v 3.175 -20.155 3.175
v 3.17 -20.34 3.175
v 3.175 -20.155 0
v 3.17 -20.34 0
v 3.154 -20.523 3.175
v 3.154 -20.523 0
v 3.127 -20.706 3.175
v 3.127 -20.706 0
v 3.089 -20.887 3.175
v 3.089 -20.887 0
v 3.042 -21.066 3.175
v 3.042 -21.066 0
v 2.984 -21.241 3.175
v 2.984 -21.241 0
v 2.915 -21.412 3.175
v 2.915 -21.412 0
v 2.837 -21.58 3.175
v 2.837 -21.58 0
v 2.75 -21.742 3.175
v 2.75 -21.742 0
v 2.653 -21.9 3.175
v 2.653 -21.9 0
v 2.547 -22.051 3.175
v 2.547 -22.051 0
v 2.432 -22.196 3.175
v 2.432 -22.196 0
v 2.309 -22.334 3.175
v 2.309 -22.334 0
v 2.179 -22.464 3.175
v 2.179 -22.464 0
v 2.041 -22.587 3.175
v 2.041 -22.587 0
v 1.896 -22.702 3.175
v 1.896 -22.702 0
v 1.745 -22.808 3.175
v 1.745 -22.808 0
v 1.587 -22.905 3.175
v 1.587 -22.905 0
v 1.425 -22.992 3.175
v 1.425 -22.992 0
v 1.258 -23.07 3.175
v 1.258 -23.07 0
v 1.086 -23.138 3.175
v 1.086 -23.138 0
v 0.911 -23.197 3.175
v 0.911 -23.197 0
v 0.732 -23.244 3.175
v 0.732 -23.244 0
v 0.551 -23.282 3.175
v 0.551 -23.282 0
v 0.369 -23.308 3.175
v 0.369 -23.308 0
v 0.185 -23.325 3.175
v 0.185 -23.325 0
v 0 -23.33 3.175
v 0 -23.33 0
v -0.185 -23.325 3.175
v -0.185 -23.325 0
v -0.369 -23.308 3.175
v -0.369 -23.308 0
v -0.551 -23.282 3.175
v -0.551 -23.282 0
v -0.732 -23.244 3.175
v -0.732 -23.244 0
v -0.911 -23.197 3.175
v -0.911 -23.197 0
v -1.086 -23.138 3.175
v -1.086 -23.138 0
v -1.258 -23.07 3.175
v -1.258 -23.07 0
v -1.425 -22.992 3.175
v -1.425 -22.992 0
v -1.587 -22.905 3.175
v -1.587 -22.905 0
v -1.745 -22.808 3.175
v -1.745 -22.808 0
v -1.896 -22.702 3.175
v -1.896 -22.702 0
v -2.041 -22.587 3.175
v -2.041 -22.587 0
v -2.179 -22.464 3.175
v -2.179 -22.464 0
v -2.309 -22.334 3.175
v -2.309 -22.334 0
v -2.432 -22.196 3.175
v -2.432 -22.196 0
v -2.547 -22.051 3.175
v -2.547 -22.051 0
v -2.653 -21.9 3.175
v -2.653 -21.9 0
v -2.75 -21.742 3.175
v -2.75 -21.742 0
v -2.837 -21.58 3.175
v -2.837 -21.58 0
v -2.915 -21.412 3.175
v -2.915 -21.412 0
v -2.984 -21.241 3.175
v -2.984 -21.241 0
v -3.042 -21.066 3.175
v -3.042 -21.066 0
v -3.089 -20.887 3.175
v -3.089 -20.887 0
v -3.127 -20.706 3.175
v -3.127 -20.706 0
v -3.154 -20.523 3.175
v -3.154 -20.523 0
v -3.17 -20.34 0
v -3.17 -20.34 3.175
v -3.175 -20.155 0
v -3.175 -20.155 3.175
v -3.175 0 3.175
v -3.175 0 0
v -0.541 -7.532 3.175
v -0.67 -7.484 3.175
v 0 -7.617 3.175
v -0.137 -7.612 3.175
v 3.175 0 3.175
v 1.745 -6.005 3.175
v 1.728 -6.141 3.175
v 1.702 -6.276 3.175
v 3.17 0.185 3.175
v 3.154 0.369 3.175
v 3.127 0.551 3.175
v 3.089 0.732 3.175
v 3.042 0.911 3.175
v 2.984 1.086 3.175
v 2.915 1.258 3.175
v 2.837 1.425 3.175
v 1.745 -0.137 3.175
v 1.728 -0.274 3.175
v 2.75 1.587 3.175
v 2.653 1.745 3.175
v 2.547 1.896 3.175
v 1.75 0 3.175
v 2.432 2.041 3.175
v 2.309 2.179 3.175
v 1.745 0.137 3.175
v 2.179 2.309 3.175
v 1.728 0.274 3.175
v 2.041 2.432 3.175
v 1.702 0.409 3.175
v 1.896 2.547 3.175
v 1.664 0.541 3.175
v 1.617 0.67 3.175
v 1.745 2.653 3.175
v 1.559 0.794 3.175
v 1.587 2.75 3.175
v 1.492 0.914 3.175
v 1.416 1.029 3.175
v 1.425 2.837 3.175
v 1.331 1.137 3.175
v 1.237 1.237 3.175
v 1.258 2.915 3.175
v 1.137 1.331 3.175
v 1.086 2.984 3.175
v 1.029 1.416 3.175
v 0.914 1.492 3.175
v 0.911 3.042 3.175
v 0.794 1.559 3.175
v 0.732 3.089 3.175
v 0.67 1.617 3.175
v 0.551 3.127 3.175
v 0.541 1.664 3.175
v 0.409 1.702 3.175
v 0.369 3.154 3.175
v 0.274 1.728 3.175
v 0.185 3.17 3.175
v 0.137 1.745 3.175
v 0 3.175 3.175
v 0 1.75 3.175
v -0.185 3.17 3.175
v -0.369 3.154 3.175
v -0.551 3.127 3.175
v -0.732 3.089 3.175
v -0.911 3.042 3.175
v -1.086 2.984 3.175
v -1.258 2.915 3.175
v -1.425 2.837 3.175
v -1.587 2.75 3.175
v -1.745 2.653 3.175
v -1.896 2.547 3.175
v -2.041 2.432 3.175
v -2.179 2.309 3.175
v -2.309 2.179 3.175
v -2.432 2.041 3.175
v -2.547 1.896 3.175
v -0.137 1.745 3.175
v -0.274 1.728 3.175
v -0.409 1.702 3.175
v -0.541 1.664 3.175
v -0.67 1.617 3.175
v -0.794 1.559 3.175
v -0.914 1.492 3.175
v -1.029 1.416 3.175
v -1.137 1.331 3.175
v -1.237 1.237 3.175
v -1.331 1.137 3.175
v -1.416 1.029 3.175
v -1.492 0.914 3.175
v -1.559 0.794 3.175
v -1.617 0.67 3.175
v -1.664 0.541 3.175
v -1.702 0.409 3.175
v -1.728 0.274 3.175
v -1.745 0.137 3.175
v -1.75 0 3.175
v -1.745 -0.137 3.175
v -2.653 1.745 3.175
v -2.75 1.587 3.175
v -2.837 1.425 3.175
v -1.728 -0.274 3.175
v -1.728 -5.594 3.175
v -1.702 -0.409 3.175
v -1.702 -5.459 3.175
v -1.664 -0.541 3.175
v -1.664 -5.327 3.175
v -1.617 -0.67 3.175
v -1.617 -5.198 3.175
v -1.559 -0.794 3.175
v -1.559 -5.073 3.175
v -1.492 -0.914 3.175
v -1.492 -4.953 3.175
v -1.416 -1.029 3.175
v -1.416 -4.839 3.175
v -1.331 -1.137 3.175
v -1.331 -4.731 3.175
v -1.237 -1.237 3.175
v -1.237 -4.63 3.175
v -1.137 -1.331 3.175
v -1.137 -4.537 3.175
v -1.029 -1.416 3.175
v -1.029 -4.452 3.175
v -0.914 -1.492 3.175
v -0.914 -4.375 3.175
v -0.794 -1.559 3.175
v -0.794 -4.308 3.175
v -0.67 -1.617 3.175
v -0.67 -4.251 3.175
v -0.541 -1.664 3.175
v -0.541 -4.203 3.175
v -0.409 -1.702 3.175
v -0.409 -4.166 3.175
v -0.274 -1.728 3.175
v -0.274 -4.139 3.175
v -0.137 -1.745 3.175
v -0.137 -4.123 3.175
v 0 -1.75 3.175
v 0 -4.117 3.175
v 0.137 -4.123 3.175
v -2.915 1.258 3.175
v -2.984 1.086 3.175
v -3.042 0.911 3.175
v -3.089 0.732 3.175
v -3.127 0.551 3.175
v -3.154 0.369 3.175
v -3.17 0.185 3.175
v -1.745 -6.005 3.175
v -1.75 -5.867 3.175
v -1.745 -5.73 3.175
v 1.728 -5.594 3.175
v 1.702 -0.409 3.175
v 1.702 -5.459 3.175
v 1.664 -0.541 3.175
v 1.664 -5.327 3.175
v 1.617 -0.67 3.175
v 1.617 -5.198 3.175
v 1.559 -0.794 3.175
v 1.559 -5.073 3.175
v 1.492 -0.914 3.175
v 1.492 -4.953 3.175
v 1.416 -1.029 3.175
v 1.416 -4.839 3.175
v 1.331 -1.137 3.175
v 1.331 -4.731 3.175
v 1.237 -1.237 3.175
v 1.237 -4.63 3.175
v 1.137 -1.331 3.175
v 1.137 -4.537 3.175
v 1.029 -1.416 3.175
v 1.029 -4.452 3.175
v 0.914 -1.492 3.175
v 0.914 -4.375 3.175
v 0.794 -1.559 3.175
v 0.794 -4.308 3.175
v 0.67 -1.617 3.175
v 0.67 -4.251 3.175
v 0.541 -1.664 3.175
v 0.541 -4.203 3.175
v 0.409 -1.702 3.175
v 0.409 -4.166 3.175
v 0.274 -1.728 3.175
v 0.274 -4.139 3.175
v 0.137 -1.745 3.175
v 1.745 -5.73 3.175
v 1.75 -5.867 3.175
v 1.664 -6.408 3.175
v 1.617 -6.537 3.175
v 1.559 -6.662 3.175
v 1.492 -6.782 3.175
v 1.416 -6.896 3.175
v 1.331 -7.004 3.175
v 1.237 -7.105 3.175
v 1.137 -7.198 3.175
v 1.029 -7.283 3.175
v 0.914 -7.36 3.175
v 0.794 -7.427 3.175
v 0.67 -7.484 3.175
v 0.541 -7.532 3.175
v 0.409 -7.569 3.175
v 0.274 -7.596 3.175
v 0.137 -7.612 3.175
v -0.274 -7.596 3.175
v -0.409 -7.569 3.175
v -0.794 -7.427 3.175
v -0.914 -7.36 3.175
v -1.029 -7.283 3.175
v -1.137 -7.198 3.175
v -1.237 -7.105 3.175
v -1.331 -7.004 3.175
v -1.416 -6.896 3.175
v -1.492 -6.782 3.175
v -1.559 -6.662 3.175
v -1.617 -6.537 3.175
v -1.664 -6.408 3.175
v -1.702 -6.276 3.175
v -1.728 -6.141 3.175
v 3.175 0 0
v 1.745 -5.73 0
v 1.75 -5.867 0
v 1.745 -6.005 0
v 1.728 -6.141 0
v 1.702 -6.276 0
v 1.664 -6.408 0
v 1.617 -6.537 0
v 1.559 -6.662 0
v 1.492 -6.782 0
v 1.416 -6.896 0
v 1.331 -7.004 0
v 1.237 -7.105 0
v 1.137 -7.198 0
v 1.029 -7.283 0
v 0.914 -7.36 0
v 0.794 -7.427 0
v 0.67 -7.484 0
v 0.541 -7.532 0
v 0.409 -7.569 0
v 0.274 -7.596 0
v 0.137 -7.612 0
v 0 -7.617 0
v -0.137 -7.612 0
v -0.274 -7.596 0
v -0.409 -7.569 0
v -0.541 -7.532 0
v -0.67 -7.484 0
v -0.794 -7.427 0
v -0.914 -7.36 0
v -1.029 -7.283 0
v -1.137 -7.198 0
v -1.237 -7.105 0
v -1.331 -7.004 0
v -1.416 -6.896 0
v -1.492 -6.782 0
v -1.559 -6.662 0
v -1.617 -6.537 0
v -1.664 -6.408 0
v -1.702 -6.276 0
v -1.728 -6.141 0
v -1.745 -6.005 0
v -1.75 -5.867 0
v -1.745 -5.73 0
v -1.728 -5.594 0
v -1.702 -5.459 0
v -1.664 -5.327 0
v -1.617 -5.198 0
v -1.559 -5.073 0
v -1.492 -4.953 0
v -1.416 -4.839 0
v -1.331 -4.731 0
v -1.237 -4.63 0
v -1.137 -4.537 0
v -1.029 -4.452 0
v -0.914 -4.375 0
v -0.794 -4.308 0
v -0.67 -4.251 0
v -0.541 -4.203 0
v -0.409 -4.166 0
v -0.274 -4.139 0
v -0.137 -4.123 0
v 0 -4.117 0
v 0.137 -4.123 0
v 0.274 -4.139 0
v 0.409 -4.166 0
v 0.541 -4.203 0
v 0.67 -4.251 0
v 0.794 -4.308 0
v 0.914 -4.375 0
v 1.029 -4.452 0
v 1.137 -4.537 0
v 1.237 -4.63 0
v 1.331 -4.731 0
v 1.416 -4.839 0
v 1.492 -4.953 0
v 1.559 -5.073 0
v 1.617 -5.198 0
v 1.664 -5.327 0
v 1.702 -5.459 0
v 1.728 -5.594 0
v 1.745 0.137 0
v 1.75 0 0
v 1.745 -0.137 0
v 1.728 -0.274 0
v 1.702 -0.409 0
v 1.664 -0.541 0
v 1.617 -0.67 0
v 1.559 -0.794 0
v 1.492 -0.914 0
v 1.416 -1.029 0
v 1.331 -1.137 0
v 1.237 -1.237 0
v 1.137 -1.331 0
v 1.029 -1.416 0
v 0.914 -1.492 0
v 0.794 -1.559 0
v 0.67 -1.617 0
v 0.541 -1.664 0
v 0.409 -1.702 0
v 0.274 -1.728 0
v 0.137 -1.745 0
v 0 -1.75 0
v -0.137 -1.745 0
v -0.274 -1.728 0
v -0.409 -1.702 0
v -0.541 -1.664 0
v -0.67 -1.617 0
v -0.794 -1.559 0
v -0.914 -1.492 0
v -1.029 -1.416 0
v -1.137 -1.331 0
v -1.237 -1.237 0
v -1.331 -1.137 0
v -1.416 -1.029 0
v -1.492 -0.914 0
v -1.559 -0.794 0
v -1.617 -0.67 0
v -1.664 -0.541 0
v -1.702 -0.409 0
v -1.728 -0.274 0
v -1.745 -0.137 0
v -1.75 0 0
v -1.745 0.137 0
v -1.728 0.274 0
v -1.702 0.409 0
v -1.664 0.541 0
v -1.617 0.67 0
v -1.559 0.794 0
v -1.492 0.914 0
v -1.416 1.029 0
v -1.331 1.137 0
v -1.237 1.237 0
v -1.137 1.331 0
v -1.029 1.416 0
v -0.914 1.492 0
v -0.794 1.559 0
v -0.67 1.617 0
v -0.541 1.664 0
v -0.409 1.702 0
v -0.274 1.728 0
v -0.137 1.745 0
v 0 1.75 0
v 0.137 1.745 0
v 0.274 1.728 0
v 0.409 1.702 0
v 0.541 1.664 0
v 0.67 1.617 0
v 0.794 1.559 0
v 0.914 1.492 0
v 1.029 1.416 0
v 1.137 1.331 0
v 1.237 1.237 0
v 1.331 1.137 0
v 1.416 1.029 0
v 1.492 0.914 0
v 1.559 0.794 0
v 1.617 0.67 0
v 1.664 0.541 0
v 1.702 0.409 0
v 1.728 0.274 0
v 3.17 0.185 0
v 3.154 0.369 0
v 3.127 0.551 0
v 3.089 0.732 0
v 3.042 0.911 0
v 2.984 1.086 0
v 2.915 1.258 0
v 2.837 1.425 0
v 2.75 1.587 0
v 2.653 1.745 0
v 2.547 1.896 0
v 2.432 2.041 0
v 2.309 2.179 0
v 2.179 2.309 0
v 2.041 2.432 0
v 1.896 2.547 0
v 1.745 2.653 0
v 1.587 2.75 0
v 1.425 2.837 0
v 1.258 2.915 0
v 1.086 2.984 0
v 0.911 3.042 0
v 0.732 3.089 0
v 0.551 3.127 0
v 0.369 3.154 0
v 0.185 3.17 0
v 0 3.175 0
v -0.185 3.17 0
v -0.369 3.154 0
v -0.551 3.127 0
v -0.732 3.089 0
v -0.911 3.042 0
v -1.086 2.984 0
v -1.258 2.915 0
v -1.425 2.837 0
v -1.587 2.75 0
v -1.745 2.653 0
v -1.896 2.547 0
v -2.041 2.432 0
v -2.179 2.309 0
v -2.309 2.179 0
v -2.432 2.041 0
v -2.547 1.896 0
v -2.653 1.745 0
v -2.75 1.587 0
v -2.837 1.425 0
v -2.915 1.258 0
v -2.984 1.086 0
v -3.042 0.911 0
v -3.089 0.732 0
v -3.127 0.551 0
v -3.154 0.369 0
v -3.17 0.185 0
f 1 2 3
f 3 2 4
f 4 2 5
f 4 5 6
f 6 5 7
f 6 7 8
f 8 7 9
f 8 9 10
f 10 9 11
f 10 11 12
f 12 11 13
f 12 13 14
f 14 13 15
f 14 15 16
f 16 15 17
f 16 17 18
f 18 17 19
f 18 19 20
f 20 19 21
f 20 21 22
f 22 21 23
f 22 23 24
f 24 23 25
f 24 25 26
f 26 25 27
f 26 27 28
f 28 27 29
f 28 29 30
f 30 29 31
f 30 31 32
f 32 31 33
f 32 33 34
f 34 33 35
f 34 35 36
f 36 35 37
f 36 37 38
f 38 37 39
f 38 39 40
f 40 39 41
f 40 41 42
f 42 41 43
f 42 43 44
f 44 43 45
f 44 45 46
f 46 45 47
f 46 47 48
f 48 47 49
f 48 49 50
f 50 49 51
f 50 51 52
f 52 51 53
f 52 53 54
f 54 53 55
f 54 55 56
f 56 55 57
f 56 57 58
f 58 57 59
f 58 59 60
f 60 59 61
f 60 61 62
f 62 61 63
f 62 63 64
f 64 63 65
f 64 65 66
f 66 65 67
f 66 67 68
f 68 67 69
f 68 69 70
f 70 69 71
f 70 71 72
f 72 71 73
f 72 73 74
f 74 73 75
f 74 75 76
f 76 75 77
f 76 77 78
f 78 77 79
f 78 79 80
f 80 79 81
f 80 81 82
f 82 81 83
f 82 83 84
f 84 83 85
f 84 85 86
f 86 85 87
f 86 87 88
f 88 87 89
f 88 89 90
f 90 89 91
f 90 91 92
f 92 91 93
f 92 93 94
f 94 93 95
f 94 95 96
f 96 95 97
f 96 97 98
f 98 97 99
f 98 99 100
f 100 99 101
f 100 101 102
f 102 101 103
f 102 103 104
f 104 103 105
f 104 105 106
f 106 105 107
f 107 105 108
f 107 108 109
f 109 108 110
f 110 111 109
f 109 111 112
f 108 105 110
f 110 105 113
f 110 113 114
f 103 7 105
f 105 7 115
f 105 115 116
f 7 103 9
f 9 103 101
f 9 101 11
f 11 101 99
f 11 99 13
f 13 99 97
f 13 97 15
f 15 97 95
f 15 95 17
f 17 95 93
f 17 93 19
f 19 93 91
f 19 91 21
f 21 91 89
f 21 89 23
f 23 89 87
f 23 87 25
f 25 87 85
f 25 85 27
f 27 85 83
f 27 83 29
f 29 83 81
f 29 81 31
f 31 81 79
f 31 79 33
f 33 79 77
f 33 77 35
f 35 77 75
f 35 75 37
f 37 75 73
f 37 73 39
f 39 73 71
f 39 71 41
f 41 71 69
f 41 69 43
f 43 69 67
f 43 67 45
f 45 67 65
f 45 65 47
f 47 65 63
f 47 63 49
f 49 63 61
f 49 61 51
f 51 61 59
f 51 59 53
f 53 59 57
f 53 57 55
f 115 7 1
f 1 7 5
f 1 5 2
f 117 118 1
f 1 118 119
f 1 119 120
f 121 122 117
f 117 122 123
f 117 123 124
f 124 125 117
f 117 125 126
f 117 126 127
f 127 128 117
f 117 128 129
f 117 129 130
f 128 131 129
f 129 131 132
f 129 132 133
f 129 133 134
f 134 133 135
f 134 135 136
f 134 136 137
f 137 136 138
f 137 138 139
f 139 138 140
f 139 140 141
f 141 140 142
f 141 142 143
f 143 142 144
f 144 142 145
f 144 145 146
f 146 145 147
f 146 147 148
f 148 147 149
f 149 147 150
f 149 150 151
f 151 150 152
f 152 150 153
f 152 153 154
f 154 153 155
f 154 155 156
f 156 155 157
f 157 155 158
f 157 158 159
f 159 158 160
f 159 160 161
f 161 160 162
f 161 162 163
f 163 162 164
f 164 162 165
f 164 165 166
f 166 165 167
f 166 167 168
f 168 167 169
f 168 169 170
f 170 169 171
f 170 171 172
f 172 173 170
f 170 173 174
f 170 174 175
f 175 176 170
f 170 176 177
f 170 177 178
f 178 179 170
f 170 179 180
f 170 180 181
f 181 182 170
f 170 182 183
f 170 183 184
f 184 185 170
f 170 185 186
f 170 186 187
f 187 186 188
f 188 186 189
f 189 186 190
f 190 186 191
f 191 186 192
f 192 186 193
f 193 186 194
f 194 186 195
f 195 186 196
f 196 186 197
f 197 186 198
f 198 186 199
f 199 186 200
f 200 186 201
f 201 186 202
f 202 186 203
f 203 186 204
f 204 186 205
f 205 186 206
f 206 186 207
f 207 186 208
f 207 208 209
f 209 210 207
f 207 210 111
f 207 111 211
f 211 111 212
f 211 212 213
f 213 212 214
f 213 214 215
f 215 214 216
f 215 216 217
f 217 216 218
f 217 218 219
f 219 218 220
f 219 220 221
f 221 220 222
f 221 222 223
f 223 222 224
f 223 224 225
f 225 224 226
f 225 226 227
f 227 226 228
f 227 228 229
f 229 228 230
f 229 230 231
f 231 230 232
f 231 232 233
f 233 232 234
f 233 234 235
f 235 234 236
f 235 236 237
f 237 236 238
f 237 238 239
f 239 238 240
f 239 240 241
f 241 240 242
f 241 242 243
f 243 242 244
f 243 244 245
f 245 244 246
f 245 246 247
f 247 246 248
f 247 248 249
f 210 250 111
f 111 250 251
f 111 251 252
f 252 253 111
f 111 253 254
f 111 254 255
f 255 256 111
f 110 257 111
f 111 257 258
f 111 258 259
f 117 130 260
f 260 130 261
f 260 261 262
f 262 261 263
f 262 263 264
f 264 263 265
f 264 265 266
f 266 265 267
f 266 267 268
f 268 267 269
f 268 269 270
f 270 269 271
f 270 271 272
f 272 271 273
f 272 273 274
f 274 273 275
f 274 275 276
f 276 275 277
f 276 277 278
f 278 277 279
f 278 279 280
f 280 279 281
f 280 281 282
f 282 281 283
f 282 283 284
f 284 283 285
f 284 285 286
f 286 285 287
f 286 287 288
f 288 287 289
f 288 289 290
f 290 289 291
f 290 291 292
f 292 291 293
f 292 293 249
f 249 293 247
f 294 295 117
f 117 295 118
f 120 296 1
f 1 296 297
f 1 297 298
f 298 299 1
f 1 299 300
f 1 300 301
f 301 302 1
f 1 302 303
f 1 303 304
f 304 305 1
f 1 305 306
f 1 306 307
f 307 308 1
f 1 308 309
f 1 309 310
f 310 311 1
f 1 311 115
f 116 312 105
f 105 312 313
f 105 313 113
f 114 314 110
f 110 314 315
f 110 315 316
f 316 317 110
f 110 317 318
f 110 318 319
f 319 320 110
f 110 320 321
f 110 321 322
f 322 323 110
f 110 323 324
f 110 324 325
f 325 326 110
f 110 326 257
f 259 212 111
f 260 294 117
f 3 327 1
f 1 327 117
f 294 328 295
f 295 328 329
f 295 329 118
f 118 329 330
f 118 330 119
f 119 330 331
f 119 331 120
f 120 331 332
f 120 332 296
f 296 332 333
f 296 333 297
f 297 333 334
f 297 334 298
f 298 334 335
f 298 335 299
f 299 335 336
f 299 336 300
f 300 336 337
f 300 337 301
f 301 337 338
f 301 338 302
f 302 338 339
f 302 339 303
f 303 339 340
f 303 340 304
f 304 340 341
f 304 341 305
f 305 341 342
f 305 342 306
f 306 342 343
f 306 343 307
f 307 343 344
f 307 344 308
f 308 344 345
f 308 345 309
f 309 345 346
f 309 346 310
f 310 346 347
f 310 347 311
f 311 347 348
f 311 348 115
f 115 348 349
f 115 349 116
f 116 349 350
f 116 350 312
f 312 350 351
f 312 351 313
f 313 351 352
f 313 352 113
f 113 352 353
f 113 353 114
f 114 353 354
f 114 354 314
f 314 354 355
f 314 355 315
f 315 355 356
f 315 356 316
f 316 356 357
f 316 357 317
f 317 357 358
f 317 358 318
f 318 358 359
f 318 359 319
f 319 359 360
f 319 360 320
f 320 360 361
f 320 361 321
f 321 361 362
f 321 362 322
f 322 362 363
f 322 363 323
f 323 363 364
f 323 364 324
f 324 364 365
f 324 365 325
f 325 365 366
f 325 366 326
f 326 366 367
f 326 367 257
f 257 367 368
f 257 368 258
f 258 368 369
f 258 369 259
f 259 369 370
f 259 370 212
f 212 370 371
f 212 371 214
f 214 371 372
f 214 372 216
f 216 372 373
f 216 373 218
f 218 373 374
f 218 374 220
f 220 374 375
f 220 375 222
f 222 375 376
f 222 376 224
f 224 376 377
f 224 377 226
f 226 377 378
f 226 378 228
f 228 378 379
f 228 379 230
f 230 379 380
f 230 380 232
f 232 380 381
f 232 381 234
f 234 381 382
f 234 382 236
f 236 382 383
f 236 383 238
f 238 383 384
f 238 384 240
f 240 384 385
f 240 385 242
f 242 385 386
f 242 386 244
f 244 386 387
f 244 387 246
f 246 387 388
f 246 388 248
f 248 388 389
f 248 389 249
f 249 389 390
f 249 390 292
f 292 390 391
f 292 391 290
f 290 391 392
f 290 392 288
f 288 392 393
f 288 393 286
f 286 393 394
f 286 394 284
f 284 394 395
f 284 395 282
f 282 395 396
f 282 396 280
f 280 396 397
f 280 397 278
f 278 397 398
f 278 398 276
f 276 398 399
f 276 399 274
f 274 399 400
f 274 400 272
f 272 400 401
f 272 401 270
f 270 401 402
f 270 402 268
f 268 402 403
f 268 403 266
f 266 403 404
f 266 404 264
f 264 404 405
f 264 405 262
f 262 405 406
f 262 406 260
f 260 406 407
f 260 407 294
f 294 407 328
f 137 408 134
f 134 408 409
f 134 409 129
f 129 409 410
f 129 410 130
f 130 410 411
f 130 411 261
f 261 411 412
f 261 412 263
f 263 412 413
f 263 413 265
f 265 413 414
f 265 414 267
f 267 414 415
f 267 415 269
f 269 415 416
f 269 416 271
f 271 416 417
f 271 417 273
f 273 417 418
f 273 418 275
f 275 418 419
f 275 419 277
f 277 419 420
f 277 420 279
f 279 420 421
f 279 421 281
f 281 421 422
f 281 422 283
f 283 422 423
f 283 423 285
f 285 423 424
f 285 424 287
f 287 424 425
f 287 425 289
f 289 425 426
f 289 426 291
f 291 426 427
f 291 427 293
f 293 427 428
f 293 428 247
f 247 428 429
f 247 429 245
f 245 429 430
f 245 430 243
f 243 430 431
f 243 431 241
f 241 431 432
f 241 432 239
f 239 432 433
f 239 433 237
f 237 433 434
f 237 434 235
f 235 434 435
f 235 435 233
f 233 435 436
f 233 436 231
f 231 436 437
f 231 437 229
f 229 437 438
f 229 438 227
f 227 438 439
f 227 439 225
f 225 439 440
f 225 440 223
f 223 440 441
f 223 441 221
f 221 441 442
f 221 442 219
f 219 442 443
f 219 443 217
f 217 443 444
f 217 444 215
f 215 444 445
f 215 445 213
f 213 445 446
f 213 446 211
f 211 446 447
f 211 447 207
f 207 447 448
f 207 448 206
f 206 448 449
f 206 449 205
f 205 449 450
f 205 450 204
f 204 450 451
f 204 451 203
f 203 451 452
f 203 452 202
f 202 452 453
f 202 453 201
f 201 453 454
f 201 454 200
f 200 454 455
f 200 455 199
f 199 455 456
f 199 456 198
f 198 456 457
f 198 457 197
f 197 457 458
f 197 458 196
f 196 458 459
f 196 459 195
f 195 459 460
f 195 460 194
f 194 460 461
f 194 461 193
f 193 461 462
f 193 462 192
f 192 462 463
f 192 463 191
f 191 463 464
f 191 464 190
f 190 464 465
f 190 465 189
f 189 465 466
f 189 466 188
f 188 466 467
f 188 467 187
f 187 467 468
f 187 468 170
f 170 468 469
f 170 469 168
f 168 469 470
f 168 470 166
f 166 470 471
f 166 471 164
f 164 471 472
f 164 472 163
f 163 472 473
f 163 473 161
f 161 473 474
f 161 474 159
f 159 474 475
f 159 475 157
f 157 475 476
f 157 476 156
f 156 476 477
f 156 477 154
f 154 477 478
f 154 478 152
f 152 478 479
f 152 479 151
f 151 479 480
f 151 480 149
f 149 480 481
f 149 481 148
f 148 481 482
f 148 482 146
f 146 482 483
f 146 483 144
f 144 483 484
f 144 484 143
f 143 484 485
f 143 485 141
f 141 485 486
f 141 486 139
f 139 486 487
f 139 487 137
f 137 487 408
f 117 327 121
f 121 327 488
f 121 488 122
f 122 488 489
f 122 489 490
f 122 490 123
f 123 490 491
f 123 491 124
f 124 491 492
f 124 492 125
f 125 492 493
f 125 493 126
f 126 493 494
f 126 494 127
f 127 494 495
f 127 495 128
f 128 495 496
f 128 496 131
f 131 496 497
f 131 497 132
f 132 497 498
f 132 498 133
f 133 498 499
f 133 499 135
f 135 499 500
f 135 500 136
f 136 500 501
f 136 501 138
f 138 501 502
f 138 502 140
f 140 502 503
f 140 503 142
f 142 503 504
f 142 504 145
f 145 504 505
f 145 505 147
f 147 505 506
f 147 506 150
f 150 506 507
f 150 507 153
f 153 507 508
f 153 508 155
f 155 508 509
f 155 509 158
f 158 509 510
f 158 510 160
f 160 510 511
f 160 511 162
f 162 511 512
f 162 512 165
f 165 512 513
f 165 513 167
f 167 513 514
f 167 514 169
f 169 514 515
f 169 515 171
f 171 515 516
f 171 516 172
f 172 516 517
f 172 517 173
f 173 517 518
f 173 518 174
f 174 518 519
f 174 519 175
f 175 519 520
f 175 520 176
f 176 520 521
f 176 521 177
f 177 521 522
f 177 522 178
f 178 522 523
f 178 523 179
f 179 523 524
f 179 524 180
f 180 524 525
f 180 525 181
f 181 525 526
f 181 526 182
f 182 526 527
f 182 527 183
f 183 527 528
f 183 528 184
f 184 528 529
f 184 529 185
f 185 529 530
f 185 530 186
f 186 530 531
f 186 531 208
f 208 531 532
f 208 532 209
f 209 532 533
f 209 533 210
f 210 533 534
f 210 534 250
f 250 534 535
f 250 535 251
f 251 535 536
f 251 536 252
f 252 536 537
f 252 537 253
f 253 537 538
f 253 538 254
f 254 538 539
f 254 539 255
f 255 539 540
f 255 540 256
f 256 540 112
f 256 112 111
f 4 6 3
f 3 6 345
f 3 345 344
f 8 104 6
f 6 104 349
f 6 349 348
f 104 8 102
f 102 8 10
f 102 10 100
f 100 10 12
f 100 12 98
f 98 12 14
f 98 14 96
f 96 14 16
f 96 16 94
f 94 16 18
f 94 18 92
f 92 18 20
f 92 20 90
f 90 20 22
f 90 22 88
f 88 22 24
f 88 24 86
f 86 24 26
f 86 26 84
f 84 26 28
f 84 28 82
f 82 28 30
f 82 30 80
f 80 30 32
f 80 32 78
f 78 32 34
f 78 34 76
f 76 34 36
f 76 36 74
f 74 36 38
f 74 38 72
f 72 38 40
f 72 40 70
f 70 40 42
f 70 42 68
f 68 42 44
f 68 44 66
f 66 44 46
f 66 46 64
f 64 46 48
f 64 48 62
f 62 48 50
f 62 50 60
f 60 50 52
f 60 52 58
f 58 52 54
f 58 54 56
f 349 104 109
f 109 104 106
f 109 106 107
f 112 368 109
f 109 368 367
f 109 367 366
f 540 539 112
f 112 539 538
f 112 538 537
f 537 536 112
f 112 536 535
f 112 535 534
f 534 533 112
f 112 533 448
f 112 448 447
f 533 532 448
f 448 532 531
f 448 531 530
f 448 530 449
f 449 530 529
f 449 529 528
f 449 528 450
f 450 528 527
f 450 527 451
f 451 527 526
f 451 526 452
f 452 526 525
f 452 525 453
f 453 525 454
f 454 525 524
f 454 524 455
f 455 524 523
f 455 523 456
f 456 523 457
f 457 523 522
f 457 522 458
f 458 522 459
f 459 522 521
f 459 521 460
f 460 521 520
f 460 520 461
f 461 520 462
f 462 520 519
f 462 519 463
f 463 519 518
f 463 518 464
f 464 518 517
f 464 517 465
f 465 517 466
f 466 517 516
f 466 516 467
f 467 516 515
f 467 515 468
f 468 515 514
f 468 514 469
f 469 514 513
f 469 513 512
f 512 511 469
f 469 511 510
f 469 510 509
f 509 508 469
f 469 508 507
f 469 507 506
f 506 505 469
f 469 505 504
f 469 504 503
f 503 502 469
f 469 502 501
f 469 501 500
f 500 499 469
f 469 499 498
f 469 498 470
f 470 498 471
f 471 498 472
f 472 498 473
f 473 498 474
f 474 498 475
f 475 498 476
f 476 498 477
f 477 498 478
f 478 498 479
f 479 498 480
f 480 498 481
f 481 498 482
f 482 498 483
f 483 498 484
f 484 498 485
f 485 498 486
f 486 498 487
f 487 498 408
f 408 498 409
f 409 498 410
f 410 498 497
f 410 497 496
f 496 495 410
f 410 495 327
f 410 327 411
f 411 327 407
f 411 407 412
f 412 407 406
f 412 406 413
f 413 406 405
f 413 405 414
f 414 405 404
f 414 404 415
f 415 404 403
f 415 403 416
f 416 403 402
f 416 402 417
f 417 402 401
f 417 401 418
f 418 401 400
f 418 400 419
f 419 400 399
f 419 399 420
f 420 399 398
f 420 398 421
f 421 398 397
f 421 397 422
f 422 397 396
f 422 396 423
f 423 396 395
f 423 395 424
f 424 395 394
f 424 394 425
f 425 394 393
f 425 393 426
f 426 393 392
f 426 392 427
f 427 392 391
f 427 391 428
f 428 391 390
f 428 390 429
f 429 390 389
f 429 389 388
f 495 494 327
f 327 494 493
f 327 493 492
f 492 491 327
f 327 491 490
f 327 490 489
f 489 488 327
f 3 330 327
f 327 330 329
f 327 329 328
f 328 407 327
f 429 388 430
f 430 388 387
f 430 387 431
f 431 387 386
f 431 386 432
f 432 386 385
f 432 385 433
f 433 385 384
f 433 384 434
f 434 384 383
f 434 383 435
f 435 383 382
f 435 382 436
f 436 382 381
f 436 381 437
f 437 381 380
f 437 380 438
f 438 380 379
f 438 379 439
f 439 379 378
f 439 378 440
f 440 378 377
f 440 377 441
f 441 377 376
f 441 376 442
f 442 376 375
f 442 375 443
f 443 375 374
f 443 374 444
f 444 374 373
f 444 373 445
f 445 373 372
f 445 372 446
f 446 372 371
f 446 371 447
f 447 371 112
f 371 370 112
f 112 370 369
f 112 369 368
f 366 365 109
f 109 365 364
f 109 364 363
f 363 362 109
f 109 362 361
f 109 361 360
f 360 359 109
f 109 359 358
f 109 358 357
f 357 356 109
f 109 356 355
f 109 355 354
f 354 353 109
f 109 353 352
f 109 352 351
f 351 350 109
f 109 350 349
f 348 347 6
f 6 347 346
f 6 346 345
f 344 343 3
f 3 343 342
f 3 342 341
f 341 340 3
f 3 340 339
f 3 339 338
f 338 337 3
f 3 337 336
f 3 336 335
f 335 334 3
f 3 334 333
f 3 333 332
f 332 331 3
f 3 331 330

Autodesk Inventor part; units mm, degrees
ref_plane "YZ Plane" through (0, 0, 0) normal (1, 0, 0) x (0, 1, 0)
ref_plane "XZ Plane" through (0, 0, 0) normal (0, 1, 0) x (-1, 0, 0)
ref_plane "XY Plane" through (0, 0, 0) normal (0, 0, 1) x (1, 0, 0)
sketch "Sketch1" plane through (0, 0, 0) normal (0, 0, 1) x (1, 0, 0)
  circle A0 centre (0, 0) radius 1.75
  circle A1 centre (0, -5.8674) radius 1.75
  arc A2 (-3.175, -15.3924) -> (3.175, -15.3924) centre (0, -15.3924) ccw
  arc A3 (3.175, 0) -> (-3.175, 0) centre (0, 0) ccw
  line L0 (-3.175, 0) -> (-3.175, -15.3924)
  line L1 (3.175, 0) -> (3.175, -15.3924)
  dimension "d0" = 3.5
  dimension "d3" = 3.5
extrude "Extrusion1" add sketch "Sketch1" along normal blind 3.175
sketch "Sketch2" plane through (0, 0, 3.175) normal (0, 0, 1) x (1, 0, 0)
  arc A0 (-3.175, -15.3924) -> (3.175, -15.3924) centre (0, -15.3924) ccw projected
  arc A1 (-3.175, -21.7424) -> (3.175, -21.7424) centre (0, -21.7424) ccw
  line L0 (-3.175, 0) -> (-3.175, -15.3924) projected
  line L1 (-3.175, -21.7424) -> (-3.175, -15.3924)
  line L2 (3.175, -15.3924) -> (3.175, -21.7424)
  arc A2 (-3.175, -15.3924) -> (3.175, -15.3924) centre (0, -15.3924) ccw
  point P0 (0, 0)
  dimension "d10" = 6.35
extrude "Extrusion2" add sketch "Sketch2" against normal blind 3.175
sketch "Sketch7" plane through (0, 0, 3.175) normal (0, 0, 1) x (1, 0, 0)
  arc A0 (-3.175, -21.7424) -> (3.175, -21.7424) centre (0, -21.7424) ccw projected
  arc A1 (-3.175, -20.1549) -> (3.175, -20.1549) centre (0, -20.1549) ccw
  line L0 (3.175, -21.7424) -> (3.175, 0) projected
  line L1 (-3.175, 0) -> (-3.175, -21.7424) projected
  line L2 (-3.175, -21.7424) -> (-3.175, -20.1549)
  line L3 (3.175, -21.7424) -> (3.175, -20.1549)
  arc A2 (-3.175, -21.7424) -> (3.175, -21.7424) centre (0, -21.7424) ccw
  point P0 (0, 0)
extrude "Extrusion8" cut sketch "Sketch7" against normal blind 3.175
properties part number "Brake"
